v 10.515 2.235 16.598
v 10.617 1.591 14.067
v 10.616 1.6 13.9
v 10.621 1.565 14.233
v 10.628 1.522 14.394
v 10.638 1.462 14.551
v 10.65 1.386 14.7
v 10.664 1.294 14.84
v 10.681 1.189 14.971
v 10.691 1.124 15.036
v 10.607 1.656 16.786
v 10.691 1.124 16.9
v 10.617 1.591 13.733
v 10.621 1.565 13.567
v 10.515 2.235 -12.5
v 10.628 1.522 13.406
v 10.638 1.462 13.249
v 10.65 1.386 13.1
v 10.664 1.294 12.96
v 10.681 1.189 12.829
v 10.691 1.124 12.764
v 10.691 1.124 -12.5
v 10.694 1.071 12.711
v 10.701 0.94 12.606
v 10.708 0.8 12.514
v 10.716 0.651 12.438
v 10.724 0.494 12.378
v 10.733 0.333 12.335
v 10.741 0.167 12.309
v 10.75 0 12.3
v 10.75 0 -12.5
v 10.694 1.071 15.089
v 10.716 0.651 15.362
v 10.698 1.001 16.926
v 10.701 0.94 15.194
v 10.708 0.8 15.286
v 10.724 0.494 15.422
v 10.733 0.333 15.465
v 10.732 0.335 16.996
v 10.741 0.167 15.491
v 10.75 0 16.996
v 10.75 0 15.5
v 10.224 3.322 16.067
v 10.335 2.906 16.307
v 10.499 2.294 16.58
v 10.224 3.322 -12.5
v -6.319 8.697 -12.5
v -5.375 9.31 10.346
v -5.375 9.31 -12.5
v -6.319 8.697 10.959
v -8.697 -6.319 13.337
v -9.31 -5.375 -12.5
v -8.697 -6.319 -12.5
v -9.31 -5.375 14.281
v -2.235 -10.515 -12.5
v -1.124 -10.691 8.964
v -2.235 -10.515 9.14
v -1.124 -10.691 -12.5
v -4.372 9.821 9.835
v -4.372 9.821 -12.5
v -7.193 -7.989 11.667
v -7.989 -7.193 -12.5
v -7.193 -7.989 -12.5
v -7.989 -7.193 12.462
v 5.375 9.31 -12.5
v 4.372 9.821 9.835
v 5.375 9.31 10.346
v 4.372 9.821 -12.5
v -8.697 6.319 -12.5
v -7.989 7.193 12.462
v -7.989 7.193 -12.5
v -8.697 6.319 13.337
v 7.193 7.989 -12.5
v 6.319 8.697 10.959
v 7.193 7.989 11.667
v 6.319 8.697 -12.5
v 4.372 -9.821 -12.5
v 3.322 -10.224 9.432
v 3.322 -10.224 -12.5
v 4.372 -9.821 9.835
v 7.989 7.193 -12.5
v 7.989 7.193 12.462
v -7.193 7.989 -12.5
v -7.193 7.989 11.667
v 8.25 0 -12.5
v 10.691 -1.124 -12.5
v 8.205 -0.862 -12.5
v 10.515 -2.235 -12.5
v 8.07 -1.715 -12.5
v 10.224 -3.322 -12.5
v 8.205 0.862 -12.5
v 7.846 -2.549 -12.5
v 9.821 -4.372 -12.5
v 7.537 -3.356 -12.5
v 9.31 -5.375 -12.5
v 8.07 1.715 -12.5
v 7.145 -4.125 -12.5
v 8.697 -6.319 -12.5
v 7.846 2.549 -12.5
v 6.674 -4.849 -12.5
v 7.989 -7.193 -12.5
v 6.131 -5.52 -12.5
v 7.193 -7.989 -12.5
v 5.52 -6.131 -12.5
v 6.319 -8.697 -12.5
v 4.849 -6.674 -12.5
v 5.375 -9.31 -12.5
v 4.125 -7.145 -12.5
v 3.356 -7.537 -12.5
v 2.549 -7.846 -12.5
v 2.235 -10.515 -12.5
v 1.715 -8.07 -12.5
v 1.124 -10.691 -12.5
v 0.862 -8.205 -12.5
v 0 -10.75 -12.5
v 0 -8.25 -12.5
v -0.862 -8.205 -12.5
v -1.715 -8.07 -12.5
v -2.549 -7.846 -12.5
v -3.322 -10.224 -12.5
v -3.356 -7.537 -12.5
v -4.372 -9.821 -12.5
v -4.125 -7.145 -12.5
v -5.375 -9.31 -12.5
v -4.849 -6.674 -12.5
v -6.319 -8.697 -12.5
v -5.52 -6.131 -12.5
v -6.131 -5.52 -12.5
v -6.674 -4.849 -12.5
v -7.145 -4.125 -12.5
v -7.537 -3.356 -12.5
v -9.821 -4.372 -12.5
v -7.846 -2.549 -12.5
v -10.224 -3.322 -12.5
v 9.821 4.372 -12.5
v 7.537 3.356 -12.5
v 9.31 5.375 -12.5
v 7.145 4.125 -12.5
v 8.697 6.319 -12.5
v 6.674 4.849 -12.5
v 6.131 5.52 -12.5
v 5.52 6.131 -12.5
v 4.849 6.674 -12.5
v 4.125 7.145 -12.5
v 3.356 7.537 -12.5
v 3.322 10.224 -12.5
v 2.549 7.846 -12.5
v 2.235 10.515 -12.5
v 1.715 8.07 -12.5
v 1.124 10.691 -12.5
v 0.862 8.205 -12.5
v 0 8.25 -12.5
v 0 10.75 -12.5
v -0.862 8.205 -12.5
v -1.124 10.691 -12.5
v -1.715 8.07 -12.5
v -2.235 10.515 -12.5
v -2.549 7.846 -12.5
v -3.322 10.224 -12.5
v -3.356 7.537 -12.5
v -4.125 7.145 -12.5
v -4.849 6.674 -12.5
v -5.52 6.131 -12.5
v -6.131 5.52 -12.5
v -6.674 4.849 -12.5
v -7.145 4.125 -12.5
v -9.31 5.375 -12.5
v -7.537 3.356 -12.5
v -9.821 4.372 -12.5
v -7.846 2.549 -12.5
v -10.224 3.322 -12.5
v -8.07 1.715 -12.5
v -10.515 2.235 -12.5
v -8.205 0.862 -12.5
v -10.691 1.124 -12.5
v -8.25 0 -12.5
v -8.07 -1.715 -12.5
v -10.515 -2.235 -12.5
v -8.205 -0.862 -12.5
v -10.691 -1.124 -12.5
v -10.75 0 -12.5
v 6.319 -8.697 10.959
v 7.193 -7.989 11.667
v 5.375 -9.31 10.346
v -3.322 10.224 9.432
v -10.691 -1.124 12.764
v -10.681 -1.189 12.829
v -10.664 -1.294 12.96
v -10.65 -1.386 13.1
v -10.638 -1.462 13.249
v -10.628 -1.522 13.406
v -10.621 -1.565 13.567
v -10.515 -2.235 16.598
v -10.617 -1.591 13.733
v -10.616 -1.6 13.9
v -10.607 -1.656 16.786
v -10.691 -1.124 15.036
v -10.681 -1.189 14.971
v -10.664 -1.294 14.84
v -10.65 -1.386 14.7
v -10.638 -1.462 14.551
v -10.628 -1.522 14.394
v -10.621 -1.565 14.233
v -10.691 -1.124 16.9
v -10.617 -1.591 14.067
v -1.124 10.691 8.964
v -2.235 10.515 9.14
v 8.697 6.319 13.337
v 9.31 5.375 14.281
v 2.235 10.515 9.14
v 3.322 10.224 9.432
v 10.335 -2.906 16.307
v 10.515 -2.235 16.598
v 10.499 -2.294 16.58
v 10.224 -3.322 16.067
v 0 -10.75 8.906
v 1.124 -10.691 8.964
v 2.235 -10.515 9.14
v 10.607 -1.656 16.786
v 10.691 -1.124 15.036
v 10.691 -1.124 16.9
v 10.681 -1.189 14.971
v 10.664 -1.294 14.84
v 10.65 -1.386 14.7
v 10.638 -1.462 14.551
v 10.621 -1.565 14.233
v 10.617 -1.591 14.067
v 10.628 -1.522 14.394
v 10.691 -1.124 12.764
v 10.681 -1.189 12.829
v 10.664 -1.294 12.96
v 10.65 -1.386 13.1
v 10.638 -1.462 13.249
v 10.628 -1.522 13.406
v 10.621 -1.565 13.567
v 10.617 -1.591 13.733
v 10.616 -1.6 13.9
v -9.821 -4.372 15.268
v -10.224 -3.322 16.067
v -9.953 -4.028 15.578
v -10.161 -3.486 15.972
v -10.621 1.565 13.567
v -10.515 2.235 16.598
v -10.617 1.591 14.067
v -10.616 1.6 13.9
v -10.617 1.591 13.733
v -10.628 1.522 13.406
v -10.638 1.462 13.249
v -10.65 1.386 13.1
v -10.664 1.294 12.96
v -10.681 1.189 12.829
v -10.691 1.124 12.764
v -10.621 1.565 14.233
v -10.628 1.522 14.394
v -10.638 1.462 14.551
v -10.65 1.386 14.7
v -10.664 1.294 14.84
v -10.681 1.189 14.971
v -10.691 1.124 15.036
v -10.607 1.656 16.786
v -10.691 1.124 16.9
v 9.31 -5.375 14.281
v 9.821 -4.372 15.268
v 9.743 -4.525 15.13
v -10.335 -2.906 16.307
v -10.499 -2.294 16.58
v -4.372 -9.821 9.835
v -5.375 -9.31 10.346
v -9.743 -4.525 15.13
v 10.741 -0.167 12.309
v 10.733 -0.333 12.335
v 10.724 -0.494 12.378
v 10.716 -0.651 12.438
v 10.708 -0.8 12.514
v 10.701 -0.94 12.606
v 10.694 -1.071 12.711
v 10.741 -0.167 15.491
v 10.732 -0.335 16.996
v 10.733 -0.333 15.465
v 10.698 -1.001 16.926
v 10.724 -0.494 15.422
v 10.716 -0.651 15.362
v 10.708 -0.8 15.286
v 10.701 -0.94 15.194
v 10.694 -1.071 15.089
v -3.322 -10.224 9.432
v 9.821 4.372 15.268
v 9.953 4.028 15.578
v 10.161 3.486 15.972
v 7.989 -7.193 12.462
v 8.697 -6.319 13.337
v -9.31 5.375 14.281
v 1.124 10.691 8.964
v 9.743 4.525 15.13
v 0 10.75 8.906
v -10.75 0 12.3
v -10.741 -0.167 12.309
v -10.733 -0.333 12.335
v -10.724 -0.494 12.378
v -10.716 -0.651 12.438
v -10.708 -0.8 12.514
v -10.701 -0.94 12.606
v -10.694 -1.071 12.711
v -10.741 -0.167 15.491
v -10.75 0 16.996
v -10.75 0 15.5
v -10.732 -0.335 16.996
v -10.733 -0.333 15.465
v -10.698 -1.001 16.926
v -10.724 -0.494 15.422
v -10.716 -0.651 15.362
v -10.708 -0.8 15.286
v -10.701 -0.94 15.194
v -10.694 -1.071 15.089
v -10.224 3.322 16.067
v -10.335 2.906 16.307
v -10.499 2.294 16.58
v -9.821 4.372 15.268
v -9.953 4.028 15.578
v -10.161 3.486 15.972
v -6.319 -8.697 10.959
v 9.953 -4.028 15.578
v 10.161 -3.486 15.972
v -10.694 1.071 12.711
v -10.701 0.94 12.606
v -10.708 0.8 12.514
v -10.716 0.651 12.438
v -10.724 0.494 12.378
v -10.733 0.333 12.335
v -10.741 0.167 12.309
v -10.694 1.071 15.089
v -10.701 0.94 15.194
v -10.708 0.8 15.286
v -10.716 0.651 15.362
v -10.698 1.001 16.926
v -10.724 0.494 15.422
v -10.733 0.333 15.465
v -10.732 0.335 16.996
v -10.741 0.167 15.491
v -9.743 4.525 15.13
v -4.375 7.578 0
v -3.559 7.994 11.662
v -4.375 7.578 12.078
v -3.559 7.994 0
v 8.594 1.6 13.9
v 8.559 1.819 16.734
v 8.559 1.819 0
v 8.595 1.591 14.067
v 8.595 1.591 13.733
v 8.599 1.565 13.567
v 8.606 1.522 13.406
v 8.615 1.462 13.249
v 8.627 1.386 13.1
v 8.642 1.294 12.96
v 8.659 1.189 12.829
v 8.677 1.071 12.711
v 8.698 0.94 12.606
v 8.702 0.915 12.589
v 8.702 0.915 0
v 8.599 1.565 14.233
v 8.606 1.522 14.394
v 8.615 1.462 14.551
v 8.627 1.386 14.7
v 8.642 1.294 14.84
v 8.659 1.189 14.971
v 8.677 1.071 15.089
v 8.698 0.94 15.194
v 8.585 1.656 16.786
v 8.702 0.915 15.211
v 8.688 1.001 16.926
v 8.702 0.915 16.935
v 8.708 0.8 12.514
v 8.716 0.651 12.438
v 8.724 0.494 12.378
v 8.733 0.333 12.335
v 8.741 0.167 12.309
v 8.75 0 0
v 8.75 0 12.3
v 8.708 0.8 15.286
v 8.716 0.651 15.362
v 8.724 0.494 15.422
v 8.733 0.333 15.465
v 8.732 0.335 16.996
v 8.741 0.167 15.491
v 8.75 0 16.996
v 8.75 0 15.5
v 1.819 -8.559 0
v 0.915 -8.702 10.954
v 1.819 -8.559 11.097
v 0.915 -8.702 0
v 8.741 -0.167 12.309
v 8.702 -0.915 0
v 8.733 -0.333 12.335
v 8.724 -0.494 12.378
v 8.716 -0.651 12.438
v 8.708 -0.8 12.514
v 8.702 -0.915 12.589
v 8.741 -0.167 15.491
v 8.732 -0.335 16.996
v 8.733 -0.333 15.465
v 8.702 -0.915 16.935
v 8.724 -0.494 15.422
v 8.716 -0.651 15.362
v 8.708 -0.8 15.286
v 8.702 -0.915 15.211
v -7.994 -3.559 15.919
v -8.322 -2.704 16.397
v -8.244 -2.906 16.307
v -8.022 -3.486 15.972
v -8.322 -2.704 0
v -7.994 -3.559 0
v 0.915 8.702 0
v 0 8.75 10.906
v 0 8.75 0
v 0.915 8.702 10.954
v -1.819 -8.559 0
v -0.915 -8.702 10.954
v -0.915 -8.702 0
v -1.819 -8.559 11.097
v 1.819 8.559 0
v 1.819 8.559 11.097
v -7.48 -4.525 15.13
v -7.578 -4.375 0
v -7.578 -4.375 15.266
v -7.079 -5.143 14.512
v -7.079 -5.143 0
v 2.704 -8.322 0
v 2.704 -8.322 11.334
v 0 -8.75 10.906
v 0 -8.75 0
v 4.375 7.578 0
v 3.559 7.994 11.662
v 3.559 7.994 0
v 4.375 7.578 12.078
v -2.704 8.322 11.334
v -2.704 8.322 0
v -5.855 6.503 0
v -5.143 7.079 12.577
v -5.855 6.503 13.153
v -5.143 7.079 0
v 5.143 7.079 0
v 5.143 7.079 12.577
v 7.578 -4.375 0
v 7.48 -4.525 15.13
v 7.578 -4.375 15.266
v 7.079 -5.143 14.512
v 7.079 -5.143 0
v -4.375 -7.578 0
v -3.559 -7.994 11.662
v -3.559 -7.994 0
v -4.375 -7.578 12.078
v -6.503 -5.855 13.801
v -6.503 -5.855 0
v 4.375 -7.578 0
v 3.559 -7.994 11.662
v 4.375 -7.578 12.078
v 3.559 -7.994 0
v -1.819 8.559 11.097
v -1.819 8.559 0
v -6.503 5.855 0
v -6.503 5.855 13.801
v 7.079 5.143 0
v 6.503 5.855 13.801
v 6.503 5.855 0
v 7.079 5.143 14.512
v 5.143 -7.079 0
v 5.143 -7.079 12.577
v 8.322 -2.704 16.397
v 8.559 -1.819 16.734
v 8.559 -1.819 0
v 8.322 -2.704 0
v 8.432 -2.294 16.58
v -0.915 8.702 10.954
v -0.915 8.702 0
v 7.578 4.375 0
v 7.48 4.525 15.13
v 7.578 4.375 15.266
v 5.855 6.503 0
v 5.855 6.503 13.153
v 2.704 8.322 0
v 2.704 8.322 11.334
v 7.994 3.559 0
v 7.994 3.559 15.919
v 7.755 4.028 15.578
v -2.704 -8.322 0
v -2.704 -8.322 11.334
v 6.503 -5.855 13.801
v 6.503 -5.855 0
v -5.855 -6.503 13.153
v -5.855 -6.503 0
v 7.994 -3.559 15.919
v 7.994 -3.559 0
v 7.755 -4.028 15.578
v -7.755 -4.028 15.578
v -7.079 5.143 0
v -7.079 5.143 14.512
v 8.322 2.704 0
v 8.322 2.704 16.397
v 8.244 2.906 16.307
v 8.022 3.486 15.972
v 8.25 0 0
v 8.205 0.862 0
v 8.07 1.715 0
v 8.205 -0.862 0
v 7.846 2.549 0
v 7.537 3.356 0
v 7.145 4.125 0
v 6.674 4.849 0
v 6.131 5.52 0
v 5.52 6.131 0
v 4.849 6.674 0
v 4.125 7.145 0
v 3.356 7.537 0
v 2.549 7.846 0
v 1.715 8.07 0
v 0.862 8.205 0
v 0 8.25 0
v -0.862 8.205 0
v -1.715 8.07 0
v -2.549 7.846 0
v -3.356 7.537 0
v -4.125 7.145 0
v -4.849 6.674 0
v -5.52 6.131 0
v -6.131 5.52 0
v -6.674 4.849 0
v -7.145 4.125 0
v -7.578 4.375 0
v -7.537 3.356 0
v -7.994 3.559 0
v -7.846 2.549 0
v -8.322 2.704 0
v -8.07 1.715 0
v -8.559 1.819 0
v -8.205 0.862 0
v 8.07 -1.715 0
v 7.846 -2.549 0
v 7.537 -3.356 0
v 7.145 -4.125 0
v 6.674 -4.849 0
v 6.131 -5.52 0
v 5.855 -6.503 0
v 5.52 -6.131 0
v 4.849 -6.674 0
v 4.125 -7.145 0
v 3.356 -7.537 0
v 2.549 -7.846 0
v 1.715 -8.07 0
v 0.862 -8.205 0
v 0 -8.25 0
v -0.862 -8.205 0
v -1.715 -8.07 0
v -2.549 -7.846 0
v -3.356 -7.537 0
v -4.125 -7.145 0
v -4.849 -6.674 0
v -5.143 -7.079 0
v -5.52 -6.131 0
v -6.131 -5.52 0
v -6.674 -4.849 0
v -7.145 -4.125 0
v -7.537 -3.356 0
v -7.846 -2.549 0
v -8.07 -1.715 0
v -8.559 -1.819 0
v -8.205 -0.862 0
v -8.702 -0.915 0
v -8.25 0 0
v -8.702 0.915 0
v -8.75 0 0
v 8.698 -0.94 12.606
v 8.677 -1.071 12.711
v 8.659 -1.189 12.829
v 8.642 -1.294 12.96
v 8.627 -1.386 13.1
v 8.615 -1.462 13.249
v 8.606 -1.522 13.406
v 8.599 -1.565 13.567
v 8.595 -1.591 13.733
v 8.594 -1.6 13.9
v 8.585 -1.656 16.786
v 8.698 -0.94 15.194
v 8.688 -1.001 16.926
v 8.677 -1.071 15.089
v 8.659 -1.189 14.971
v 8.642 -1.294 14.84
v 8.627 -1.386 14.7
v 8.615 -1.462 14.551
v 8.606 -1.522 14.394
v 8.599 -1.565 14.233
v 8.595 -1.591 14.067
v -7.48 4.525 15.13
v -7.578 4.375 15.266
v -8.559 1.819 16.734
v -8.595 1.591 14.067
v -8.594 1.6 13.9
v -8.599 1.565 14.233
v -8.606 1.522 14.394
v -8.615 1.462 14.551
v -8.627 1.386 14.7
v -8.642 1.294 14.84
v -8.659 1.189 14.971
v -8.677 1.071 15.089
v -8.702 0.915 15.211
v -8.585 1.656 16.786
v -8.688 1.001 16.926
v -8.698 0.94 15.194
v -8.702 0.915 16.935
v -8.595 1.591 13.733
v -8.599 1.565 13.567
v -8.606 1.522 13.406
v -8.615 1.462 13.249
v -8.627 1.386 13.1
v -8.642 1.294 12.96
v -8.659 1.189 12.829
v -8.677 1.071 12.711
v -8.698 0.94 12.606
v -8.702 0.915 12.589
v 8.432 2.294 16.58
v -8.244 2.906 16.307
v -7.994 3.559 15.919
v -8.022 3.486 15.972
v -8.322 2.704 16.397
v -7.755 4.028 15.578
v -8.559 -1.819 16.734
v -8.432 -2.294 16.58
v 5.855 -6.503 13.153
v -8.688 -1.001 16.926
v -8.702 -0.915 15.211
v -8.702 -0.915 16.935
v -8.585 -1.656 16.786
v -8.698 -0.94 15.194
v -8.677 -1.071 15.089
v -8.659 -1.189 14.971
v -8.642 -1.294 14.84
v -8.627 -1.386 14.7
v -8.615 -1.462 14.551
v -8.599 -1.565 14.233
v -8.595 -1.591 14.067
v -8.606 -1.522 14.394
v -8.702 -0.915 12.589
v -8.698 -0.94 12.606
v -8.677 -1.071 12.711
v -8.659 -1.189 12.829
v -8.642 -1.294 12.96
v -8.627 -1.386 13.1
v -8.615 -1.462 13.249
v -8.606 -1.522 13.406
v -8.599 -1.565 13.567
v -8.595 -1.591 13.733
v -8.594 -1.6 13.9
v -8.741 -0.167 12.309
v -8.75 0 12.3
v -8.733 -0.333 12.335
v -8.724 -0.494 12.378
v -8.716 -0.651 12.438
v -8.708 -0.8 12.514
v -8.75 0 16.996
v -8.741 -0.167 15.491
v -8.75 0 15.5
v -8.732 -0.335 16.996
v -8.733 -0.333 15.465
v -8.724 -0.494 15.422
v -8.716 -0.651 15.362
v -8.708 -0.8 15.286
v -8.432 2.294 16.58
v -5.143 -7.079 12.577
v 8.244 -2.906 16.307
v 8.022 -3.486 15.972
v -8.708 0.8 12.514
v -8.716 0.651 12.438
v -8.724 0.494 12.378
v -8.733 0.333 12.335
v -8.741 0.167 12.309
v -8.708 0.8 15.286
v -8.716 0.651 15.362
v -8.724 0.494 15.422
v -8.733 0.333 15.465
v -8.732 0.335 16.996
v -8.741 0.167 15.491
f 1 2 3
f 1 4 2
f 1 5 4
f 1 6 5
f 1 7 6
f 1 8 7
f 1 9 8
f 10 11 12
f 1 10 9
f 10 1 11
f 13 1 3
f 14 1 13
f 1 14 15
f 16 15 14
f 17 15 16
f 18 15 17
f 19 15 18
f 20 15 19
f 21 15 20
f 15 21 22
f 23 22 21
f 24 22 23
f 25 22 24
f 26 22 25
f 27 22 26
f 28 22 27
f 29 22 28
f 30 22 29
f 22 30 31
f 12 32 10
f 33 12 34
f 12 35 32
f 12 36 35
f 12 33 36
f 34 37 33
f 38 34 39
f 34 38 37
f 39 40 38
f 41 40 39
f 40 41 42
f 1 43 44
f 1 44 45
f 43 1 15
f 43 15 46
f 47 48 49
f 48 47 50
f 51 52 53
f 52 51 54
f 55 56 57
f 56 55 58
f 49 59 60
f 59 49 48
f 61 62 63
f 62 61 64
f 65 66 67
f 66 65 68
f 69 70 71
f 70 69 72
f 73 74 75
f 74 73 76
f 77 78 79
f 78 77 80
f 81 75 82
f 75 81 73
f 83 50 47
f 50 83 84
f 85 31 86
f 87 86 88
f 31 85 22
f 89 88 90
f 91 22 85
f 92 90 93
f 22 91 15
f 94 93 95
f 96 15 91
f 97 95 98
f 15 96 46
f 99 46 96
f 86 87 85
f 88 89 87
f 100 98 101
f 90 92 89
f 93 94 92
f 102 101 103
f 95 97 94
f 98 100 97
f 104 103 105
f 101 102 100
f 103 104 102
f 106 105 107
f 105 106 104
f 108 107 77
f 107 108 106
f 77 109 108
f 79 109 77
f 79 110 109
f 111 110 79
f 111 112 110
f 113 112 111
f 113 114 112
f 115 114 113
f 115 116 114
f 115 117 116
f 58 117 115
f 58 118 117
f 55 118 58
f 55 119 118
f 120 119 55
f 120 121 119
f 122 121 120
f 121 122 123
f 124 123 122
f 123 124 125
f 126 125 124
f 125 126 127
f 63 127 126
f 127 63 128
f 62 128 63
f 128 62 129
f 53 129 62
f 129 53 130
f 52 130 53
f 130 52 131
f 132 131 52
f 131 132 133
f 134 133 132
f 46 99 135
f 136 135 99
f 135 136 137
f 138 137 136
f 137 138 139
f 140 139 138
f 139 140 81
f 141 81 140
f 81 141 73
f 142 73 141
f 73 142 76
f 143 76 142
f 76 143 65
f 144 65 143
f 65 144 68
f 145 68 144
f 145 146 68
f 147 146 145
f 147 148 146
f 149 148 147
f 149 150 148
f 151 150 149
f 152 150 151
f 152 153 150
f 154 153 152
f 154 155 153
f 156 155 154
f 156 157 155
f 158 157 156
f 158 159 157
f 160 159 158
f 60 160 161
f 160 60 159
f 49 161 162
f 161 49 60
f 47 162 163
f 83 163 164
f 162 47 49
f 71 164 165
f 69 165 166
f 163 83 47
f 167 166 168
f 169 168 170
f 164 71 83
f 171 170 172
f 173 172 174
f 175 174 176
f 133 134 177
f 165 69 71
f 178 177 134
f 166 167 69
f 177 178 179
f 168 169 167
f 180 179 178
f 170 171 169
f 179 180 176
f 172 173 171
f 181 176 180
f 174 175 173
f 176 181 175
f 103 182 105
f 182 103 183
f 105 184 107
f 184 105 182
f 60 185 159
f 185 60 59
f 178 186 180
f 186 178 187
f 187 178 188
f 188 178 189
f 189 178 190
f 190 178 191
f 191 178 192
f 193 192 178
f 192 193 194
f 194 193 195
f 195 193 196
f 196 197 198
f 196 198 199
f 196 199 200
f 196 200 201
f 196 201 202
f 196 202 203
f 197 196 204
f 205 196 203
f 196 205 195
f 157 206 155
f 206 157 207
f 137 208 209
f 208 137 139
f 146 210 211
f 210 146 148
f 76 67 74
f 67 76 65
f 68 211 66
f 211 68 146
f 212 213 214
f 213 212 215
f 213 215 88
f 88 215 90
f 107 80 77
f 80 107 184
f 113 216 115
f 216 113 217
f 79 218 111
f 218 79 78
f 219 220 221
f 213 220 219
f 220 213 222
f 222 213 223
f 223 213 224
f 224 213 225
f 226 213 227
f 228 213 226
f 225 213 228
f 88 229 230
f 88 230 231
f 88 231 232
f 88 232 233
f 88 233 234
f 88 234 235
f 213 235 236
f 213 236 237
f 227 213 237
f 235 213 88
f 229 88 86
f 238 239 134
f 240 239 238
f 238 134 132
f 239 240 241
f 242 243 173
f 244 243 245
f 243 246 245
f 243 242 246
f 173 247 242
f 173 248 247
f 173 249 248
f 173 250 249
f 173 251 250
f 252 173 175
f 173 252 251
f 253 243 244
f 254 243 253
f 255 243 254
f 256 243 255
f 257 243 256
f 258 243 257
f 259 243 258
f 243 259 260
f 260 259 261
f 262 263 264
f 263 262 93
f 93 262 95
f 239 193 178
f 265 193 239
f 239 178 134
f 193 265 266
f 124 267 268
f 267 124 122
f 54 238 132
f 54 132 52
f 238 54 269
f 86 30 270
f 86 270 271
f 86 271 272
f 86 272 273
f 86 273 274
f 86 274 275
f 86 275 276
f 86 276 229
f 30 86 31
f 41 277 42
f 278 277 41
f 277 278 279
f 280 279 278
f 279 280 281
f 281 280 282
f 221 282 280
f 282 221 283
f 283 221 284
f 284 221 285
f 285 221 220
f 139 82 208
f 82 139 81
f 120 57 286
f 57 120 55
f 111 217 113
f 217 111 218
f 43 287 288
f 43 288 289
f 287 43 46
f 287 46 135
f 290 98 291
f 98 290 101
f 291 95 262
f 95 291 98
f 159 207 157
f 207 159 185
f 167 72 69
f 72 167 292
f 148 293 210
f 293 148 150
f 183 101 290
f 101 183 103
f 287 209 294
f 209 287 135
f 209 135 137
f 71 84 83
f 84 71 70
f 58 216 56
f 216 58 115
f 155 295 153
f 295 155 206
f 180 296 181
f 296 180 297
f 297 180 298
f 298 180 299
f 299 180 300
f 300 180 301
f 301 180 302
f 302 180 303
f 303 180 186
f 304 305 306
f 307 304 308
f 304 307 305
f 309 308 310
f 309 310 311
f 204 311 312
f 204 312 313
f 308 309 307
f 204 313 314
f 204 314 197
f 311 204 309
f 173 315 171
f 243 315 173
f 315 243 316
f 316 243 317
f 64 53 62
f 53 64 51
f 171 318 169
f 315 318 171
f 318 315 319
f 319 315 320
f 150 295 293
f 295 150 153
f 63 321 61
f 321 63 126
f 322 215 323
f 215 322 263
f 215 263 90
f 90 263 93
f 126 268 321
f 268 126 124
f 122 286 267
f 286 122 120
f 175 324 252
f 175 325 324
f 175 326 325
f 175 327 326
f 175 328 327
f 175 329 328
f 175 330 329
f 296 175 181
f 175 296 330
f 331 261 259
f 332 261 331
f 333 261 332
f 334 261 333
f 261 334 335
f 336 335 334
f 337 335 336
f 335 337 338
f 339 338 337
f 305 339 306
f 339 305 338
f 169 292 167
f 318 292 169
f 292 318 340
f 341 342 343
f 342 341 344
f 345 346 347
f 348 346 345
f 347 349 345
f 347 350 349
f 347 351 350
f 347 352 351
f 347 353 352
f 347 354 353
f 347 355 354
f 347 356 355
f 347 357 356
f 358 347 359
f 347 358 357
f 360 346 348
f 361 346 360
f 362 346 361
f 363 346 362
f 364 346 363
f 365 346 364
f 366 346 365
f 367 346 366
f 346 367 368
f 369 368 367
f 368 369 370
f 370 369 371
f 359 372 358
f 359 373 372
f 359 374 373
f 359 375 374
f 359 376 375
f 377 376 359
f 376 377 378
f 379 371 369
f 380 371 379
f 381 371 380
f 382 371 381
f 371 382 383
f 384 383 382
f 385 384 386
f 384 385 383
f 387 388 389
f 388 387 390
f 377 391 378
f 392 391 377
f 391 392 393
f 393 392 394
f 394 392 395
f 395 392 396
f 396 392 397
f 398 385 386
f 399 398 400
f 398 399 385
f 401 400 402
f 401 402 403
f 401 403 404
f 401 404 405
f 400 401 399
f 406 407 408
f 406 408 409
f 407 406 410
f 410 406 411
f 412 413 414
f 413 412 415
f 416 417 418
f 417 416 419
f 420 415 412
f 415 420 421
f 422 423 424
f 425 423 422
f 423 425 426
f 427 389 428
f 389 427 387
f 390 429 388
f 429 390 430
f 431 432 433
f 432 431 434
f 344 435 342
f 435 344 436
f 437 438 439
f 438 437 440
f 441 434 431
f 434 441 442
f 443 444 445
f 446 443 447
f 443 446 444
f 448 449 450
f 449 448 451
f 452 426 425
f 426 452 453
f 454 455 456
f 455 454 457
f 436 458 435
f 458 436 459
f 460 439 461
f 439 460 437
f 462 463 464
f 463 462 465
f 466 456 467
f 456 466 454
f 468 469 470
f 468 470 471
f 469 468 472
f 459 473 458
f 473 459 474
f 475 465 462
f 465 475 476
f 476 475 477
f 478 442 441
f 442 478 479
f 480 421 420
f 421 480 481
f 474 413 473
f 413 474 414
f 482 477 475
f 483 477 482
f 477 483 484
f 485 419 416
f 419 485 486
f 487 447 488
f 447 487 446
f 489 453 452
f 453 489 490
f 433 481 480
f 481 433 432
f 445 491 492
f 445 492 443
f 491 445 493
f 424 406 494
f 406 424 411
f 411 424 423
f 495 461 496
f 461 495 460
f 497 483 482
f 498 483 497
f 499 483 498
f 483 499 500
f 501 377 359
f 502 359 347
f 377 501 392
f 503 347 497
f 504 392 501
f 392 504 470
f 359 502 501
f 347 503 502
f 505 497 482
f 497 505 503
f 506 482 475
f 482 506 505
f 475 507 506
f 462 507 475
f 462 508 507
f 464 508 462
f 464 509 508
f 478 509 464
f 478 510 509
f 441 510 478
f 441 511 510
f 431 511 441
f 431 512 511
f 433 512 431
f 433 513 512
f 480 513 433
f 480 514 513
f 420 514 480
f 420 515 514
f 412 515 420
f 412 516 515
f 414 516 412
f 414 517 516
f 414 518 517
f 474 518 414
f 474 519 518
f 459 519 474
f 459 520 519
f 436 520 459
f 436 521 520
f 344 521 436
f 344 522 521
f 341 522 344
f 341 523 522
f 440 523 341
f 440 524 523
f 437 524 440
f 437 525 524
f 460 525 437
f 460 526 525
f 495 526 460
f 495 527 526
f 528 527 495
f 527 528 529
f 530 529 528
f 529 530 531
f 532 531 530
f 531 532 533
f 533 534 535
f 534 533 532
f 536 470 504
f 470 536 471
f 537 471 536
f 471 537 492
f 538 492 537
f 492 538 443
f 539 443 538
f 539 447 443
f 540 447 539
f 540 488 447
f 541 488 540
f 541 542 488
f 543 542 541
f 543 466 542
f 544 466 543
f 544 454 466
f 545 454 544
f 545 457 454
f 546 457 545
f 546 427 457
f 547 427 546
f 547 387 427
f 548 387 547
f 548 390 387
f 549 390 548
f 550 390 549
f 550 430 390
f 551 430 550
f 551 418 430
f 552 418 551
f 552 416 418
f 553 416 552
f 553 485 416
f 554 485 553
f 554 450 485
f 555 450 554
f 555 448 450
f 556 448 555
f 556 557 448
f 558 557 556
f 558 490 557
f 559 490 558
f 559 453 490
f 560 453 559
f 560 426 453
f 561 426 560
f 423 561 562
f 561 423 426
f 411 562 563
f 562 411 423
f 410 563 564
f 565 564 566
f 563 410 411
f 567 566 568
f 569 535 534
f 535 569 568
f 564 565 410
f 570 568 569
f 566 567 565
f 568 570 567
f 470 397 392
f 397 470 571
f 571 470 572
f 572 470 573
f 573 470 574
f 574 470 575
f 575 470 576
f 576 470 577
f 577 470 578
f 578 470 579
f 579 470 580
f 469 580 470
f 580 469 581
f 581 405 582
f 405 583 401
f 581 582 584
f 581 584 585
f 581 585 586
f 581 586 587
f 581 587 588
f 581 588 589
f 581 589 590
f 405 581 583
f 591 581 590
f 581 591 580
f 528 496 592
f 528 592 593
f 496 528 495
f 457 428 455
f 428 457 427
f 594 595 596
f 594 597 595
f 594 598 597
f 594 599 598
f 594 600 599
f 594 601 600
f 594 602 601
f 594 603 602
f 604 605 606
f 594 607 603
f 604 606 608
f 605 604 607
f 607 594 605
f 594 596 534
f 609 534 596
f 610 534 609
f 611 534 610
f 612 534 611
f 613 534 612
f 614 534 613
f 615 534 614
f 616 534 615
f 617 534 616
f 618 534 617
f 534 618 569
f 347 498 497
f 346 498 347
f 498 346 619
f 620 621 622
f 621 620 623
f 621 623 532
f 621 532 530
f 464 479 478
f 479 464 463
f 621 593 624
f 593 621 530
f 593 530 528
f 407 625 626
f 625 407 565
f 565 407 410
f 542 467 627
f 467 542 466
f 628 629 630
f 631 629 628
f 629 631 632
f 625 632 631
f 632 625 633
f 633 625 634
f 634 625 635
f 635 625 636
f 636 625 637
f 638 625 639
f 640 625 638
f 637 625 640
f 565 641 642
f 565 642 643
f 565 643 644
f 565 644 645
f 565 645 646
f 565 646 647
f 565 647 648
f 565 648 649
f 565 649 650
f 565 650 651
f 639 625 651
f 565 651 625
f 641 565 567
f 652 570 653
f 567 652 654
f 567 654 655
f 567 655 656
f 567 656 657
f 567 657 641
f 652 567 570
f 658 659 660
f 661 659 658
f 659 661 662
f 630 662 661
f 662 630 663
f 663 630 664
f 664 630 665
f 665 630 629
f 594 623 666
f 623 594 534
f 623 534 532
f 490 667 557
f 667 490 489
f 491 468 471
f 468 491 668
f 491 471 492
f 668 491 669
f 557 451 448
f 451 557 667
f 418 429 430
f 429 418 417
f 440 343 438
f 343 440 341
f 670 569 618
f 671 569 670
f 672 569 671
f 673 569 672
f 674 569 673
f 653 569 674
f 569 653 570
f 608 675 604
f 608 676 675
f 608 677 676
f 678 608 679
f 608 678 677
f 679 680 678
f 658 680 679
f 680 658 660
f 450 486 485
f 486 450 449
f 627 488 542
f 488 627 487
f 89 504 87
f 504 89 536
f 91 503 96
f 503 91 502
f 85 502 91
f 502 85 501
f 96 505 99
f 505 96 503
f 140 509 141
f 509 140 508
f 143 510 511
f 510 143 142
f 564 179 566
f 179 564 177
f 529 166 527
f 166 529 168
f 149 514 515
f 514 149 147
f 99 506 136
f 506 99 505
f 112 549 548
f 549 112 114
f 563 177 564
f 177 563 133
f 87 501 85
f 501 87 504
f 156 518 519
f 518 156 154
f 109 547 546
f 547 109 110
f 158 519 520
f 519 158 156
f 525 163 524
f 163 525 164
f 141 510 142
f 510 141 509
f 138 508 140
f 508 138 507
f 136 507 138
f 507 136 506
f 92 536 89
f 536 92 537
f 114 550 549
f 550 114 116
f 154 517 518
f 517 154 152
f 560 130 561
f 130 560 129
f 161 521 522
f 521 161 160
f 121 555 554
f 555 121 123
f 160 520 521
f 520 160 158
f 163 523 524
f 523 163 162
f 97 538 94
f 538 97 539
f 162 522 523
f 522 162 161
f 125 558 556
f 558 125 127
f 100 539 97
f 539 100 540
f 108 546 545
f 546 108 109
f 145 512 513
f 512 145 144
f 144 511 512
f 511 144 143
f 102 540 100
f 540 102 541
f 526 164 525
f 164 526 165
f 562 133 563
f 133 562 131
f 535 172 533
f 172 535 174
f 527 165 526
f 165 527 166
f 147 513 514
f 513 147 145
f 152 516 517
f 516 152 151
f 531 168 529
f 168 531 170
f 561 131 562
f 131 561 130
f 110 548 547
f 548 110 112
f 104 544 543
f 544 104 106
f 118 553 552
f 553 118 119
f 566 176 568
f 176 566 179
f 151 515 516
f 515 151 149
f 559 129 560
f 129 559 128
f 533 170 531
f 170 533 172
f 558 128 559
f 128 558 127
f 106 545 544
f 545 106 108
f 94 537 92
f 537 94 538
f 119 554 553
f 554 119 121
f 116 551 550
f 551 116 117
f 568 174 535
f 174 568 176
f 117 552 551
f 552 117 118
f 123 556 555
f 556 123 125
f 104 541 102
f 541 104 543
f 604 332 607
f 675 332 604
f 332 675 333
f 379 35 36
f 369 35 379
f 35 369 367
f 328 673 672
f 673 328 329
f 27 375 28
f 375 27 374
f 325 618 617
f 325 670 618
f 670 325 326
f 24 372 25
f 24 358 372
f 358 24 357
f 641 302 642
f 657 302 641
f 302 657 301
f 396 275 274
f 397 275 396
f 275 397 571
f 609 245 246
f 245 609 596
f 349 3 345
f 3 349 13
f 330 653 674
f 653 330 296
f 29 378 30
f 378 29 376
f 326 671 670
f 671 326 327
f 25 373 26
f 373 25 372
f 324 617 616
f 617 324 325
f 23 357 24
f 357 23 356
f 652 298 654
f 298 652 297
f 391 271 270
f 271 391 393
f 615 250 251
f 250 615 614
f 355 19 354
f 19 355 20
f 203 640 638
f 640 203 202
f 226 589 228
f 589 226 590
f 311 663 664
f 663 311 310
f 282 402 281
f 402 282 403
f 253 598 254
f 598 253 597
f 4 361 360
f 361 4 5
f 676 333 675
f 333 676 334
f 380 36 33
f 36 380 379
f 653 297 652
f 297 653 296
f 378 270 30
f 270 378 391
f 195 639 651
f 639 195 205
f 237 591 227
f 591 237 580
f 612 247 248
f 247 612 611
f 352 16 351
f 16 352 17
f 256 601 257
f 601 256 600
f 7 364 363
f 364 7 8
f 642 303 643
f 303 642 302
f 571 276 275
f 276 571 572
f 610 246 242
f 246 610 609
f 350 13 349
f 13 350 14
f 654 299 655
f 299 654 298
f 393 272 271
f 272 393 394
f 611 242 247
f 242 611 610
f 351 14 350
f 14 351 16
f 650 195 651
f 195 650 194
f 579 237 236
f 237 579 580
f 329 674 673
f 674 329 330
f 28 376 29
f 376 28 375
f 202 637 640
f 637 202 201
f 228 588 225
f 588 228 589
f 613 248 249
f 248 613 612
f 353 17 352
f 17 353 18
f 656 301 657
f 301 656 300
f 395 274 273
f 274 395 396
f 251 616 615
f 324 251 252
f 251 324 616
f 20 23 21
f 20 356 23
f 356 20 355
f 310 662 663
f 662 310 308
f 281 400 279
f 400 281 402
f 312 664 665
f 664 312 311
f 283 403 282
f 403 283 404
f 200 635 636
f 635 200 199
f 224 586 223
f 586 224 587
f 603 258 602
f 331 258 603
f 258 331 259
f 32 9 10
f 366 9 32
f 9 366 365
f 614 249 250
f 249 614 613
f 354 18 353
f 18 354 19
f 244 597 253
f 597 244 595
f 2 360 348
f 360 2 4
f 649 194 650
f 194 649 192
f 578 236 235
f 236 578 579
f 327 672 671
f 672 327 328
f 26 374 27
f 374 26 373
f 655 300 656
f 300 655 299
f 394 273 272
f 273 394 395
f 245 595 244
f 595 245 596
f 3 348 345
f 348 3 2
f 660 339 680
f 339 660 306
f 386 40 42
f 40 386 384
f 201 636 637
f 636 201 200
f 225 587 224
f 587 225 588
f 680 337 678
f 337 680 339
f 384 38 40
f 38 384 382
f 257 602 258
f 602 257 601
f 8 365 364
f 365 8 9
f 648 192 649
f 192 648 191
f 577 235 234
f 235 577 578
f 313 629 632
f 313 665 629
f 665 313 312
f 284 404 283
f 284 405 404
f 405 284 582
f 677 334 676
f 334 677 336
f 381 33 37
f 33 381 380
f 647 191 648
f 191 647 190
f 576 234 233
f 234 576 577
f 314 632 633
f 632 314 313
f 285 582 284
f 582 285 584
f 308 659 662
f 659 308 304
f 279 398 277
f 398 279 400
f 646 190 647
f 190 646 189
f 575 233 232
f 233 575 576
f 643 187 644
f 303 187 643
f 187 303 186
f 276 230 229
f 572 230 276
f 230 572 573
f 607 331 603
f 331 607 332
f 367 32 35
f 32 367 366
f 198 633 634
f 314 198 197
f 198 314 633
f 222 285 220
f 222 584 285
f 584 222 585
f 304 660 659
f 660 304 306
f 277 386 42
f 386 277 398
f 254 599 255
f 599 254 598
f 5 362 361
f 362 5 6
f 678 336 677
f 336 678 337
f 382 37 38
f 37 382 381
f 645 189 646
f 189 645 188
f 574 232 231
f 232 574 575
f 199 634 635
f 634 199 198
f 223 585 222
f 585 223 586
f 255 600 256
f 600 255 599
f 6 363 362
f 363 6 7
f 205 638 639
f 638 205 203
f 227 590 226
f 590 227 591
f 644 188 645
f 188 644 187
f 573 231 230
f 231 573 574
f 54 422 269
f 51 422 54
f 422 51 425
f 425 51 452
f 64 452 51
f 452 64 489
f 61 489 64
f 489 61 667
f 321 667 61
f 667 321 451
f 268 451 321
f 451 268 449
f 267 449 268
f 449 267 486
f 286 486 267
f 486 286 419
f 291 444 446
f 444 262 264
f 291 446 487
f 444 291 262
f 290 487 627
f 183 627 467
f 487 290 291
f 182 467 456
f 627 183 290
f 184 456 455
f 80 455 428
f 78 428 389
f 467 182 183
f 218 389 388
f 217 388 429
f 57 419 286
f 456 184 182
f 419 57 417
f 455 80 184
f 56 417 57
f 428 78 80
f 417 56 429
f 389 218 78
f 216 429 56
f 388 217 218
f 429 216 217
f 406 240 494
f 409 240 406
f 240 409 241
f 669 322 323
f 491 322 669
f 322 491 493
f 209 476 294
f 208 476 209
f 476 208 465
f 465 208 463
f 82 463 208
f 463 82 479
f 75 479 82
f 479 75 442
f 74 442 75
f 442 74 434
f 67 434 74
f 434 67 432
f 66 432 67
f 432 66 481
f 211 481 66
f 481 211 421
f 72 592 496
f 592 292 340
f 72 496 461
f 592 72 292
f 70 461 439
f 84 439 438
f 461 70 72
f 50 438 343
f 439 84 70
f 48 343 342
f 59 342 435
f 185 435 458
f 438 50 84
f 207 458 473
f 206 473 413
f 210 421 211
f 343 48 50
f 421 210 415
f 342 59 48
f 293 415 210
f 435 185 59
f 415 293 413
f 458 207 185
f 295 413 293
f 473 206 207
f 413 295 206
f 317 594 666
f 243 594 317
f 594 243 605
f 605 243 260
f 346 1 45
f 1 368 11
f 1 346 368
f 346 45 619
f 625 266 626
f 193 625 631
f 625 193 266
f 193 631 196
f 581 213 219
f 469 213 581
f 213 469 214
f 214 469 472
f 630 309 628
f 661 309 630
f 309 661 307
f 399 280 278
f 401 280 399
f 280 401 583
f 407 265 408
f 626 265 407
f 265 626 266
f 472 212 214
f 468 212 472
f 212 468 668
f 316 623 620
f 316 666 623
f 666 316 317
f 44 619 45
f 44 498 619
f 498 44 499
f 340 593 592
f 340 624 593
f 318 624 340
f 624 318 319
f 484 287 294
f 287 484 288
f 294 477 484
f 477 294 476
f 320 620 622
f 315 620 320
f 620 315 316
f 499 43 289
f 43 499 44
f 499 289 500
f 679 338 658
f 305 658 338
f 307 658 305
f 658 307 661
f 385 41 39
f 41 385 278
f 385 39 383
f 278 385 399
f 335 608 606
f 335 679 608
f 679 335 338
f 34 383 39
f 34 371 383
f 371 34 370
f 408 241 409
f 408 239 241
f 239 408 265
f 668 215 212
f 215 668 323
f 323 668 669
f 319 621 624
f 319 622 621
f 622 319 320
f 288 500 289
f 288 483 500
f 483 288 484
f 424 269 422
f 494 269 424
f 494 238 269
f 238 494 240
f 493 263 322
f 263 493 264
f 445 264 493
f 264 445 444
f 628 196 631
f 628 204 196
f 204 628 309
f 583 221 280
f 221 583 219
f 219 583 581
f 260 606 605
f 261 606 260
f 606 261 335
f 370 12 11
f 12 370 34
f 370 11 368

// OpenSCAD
/* Copyright (C) Peter Ivanov <ivanovp@gmail.com>, 2015 */
/* License: Creative Commons - Attribution - Non-commercial (CC BY-NC) /

// 16005 bearing, h = 8 mm, d = 25 mm, D = 47 mm
// 16003 bearing, h = 8 mm, d = 17 mm, D = 35 mm
/* [Global] */
inner_diameter = 17.5;
inner_diameter2 = 16.5;
wall_thickness = 2;
outer_diameter = inner_diameter + wall_thickness * 2;
base_width = outer_diameter + 5;
height = 30;
drill_diameter = 3.2;
epsilon = 0.1;

$fn = 60;

intersection()
{
    difference()
    {
        translate([0, 0, inner_diameter - height]) cylinder(d=outer_diameter, h=height);
        cylinder(d=inner_diameter, h=height);
        translate([0, 0, -height + epsilon / 2]) cylinder(d=inner_diameter2, h=height);
        translate([0, 0, inner_diameter - drill_diameter / 2 - wall_thickness]) rotate([0, 90, 0]) cylinder(d=drill_diameter, h=outer_diameter + epsilon, center=true);
        //rotate([0, 0, 90]) translate([0, 0, height]) rotate([90, 0, 0]) cylinder(d=inner_diameter * 0.75, h=inner_diameter, center=true);
    }
    translate([0, 0, -outer_diameter / 2]) rotate([45, 0, 0]) translate([0, -outer_diameter, outer_diameter]) rotate([0, 90, 0]) rounded_cube(outer_diameter * 2, outer_diameter * 2, outer_diameter, drill_diameter * 2);
}

module rounded_cube(w, l, h, r)
{
    hull()
    {
     translate([0 + r, 0 + r, 0]) cylinder(r=r, h=h, center=true);
     translate([w - r, 0 + r, 0]) cylinder(r=r, h=h, center=true);
     translate([w - r, l - r, 0]) cylinder(r=r, h=h, center=true);
     translate([0 + r, l - r, 0]) cylinder(r=r, h=h, center=true);
    }
}

module hexagon(width, height, baseAngle) 
{
  bwidth = width / 1.75;
  for (angle = [baseAngle, baseAngle + 60, baseAngle + 120]) 
  {
      rotate([0, 0, angle]) cube([bwidth, width, height], true);
  }
}
